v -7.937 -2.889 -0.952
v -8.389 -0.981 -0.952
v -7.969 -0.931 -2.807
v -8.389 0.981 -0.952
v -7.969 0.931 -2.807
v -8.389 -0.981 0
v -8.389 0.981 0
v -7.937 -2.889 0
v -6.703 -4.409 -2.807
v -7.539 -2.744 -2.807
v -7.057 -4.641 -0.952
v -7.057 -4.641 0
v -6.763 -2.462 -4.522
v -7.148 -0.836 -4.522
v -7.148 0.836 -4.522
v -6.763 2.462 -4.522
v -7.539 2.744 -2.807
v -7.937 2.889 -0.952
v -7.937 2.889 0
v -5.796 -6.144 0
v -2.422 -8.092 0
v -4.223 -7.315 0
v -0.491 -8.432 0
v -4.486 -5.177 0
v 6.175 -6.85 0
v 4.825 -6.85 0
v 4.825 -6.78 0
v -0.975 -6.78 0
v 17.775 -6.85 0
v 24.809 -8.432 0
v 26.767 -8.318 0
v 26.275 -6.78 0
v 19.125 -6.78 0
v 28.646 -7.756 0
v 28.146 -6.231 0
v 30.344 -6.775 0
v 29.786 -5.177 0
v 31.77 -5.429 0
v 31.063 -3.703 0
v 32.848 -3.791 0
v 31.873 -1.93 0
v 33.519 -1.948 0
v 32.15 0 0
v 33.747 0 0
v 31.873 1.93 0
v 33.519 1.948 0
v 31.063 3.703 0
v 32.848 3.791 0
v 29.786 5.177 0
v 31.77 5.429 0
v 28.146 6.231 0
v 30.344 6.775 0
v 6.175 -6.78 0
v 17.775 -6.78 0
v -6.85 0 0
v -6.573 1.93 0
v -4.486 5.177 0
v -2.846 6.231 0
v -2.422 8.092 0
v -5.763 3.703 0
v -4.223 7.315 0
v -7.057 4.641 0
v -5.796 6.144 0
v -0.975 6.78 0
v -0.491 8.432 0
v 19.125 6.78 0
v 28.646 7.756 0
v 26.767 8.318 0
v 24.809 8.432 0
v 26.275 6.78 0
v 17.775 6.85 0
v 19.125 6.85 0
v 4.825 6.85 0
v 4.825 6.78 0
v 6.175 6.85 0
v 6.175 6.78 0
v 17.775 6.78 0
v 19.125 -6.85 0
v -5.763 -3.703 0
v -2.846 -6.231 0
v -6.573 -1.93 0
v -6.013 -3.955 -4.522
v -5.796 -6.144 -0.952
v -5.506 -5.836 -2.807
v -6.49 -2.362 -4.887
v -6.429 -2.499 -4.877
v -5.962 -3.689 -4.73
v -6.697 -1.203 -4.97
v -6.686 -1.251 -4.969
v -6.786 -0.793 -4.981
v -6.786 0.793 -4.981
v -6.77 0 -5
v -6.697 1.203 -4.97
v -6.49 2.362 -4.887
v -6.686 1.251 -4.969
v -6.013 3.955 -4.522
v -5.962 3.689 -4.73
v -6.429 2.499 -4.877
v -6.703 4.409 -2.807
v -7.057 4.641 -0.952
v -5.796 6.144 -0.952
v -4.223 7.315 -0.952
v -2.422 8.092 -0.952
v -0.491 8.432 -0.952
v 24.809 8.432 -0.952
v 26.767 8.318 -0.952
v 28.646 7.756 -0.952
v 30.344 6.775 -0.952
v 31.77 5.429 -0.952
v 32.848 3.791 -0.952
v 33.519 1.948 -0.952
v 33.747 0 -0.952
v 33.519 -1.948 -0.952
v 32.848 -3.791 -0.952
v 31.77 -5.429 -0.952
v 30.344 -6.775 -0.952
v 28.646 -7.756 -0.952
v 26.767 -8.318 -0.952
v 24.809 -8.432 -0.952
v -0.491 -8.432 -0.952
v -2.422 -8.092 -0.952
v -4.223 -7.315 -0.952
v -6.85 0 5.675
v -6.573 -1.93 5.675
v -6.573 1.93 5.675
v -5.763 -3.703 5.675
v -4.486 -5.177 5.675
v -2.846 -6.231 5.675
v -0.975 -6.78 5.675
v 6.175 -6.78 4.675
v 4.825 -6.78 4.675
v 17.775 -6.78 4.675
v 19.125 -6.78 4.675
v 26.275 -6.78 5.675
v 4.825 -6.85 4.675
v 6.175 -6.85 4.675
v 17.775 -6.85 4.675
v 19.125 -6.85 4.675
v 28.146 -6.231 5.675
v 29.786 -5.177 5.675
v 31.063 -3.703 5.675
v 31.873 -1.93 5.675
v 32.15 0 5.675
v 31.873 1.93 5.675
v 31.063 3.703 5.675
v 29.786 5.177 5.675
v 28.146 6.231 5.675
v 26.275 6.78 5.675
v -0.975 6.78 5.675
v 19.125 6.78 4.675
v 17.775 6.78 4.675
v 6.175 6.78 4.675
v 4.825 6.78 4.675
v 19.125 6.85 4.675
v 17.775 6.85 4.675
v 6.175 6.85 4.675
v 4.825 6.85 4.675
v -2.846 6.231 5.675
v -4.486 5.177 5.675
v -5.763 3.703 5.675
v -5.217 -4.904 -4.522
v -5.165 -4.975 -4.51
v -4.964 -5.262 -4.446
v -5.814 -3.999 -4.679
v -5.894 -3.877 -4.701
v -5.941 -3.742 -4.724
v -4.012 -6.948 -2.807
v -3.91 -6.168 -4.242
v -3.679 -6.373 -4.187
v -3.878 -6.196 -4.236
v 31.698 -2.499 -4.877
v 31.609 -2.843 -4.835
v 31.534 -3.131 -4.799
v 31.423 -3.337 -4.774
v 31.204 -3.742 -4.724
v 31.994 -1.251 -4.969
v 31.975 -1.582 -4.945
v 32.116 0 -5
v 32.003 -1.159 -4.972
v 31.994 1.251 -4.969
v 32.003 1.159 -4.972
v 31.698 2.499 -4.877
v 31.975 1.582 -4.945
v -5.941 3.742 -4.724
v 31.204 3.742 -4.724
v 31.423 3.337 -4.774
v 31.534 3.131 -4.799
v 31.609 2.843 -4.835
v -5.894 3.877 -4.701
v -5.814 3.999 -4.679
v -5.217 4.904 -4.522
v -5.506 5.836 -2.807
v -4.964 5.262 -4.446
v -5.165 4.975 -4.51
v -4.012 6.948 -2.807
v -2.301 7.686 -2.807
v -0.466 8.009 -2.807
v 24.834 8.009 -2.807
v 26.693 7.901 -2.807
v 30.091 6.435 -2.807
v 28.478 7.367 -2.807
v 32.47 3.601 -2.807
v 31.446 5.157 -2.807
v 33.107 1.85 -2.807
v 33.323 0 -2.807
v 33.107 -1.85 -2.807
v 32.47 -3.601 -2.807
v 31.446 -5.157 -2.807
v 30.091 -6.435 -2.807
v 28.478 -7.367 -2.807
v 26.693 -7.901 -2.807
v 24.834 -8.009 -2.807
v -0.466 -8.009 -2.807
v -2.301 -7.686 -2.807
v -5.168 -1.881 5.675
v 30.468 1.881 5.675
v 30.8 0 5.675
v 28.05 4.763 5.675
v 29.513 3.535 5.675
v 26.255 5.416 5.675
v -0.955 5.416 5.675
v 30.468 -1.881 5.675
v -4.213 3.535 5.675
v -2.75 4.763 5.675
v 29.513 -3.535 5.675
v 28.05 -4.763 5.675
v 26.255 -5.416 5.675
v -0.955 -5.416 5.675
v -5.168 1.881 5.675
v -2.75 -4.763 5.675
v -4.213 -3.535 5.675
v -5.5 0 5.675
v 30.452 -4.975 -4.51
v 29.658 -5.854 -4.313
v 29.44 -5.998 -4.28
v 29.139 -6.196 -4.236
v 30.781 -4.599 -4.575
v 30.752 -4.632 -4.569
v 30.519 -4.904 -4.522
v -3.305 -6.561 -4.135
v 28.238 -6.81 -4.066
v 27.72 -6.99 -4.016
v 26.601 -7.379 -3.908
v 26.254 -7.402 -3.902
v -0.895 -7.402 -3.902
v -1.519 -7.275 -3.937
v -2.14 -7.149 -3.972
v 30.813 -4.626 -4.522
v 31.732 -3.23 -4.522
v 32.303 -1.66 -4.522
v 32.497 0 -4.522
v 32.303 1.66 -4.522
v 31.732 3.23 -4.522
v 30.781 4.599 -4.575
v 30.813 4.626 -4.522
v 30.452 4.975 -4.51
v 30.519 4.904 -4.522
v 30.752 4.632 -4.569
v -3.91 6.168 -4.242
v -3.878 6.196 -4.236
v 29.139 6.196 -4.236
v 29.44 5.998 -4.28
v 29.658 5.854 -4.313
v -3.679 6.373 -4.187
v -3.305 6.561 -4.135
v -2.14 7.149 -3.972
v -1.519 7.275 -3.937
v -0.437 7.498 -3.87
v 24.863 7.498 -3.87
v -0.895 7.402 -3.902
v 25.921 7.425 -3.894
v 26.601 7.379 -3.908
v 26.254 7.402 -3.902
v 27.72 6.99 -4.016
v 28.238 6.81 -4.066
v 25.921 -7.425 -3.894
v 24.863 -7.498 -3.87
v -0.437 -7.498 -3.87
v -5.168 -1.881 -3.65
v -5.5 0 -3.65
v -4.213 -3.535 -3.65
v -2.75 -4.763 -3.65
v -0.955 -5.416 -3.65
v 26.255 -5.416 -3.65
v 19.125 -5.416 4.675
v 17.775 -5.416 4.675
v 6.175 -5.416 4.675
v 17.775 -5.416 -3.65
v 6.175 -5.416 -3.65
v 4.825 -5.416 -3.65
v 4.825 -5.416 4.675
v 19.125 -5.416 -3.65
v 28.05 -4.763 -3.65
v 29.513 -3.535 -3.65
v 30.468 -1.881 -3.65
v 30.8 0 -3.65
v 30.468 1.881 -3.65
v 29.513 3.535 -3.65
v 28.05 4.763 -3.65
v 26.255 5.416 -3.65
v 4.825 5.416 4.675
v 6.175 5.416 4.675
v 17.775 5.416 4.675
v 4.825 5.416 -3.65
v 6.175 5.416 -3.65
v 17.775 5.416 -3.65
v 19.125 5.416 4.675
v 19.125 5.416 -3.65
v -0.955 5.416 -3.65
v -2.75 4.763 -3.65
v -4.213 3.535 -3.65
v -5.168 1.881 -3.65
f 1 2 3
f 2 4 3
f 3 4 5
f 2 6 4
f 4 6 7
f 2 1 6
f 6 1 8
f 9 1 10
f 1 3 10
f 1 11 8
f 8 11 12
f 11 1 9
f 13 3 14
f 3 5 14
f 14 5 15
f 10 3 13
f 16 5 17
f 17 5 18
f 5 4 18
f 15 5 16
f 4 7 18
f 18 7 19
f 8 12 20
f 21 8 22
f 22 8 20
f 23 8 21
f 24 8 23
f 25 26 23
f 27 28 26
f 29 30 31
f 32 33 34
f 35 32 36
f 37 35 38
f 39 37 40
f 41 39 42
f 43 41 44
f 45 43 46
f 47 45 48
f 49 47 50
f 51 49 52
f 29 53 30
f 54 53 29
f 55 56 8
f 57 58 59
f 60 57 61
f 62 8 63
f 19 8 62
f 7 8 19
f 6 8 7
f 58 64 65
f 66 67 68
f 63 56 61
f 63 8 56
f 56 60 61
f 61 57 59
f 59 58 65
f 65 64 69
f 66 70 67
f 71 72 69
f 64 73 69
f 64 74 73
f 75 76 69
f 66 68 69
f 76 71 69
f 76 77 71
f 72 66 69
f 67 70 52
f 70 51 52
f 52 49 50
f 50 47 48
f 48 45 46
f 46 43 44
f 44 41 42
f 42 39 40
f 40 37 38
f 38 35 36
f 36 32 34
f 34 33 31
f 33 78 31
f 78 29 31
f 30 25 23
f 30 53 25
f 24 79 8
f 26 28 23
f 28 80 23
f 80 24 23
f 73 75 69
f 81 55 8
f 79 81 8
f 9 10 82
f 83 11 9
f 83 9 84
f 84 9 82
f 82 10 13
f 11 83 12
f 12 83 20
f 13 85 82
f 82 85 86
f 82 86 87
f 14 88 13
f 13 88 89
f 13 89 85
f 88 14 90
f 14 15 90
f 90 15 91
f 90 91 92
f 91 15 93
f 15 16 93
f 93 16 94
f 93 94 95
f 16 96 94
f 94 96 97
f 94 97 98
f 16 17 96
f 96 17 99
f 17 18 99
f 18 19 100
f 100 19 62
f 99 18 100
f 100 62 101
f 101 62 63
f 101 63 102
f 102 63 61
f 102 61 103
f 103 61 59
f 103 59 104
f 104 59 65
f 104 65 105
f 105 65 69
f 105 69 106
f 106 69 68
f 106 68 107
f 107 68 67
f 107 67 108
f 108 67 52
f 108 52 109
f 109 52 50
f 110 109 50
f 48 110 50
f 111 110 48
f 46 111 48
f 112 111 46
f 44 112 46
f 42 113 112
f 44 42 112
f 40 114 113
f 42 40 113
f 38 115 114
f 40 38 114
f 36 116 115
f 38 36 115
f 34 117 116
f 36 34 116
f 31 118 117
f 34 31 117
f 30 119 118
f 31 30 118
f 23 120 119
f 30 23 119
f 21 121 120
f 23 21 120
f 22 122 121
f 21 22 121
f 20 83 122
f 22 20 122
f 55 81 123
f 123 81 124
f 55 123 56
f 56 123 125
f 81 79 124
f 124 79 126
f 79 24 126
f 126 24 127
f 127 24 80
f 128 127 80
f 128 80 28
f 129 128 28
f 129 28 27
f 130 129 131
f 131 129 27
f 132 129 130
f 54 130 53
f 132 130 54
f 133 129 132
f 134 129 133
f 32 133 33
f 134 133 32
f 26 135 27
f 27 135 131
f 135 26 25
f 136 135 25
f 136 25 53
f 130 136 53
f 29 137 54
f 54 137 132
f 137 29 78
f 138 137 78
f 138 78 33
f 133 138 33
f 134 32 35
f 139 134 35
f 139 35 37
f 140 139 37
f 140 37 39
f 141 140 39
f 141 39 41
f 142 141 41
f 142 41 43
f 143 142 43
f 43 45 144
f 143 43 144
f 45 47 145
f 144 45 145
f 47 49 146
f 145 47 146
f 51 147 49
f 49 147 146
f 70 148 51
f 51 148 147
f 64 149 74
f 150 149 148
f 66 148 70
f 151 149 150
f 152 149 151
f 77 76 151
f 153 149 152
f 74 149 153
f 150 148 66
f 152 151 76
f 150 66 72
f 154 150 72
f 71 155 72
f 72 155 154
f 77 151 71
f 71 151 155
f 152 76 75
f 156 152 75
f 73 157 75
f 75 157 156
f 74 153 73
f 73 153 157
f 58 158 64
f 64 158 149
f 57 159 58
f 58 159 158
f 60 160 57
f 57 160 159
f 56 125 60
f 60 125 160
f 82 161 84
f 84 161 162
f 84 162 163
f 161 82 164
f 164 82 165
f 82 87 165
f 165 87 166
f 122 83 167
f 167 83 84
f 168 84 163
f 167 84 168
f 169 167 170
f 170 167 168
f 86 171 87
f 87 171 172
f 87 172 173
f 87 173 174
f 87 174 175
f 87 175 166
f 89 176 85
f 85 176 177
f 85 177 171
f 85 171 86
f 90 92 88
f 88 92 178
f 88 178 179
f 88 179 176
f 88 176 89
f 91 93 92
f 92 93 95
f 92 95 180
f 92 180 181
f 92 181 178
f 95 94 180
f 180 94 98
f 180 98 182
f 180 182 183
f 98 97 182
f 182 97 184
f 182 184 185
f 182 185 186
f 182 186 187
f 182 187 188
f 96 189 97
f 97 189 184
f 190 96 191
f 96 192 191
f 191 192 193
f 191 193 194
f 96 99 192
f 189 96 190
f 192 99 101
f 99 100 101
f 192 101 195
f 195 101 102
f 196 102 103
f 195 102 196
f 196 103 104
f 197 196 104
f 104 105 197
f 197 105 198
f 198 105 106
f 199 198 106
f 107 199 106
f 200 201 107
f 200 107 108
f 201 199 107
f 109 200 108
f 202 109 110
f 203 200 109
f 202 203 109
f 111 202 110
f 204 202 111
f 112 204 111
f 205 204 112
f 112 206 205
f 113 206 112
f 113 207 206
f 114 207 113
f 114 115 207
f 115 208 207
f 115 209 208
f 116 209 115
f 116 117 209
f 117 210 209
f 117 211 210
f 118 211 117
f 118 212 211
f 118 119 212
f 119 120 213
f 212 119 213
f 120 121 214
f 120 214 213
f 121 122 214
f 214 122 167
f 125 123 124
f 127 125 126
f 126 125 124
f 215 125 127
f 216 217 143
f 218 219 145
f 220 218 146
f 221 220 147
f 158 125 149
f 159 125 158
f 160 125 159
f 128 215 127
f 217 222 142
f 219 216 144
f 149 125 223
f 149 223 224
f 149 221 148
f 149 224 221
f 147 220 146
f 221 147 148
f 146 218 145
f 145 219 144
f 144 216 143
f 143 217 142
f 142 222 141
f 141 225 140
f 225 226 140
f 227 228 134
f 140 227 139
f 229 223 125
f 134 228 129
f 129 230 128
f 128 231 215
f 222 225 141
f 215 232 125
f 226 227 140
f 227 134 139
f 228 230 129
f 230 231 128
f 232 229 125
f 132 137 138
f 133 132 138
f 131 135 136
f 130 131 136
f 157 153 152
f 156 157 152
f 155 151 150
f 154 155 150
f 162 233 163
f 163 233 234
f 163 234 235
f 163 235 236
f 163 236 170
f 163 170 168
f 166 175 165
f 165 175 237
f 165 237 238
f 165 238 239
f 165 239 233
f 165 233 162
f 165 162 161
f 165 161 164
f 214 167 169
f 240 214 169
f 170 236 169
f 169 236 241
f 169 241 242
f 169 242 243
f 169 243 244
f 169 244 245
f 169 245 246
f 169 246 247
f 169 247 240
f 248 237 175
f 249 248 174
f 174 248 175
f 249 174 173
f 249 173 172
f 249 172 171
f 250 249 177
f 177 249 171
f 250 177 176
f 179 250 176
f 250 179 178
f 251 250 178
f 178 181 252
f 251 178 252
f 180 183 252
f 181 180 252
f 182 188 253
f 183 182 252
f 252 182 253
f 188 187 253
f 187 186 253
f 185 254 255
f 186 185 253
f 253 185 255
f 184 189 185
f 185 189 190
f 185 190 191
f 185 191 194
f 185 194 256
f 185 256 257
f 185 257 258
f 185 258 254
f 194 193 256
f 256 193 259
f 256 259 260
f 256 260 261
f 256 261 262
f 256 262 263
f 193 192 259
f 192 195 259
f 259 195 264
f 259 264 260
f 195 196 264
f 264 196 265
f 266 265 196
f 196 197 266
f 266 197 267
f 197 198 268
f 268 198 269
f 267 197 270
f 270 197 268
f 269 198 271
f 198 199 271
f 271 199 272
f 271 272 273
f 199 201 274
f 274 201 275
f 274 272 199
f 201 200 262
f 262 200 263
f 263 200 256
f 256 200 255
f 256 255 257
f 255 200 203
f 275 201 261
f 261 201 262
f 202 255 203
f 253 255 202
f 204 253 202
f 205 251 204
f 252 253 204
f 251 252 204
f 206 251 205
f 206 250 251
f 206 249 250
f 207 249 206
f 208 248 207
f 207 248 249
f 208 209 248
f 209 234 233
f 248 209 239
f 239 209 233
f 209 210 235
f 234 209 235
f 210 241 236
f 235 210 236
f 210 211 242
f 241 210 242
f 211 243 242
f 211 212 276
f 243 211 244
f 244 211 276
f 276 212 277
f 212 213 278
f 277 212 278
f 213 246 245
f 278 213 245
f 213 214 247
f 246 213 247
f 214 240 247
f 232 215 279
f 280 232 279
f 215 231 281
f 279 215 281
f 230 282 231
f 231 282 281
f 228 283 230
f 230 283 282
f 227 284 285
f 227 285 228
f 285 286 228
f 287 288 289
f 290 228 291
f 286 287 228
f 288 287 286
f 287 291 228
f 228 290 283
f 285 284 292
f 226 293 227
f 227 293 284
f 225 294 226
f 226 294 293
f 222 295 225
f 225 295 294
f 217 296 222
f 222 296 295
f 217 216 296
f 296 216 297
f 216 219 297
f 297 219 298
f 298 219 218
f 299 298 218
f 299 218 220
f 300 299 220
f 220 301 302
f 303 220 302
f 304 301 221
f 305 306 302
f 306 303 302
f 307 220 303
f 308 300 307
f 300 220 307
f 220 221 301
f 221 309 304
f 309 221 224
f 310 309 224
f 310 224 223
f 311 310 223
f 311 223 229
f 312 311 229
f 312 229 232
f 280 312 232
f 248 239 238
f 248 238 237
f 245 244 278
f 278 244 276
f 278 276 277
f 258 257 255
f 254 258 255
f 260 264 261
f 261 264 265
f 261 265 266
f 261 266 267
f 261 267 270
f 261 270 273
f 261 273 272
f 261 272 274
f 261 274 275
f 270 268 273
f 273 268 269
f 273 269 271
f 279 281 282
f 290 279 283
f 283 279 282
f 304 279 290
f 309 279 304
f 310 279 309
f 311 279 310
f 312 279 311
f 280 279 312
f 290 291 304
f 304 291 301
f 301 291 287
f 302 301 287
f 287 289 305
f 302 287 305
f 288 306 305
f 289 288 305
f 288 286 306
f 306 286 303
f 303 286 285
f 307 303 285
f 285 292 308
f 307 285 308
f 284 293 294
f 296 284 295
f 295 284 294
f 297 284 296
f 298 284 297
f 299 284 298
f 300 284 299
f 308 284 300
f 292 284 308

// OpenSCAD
/*
 *  OpenSCAD Seat Spacer 
 *  Copyright (C) 2013 Mogue Carpenter
 *
 *  License: LGPL 2.1 or later
 *
 *  A simple spacer for the base of
 *  a toilet seat onto a bow.
 *
*/


lenght =43;
width = 17;
height = 10;

cap_or = width/2;

plug_lenght = 39;
plug_width = 13.7;
plug_height = 5;
wall_thinkness = 1.35;

plug_or = plug_width/2;
plug_ir = plug_or-wall_thinkness;

difference(){
	body();

	translate([0,0,wall_thinkness])
	linear_extrude(height = height, center = true, convexity = 0)
		hull() {
			translate([plug_lenght - plug_width,0,0]) circle(plug_ir);
			circle(plug_ir);
		}
}

translate([plug_ir,0,wall_thinkness-1])
	cube(size=[wall_thinkness,plug_width,height-wall_thinkness],center=true);

translate([plug_lenght-(plug_or*3) ,0, wall_thinkness -1])
	cube(size=[wall_thinkness,plug_width,height-wall_thinkness],center=true);

module body(){
	difference(){
		intersection(){
			rotate([0,90,0])
				translate([(-cap_or*3)+height/2,0,-plug_lenght])
					cylinder(r=cap_or*3,h=plug_lenght*2, $fn=128);

			hull(){
				sphere(r=cap_or);
				translate([plug_lenght - plug_width,0,0]) sphere(r=cap_or);
			}
		}

		translate([-width/2,-width/2,0])
			cube(size=[lenght,width,height]);
	}

	// base
	translate([0,0, wall_thinkness])
		linear_extrude(height = height - wall_thinkness, center = true, convexity = 0){
					hull() {
	  				translate([plug_lenght - plug_width,0,0]) circle(plug_or);
					circle(plug_or);
	 			}
		}
}


module 2d_base(){
	difference(){
		hull() {
  			translate([plug_lenght - plug_width,0,0]) circle(plug_or);
			circle(plug_or);
 		}

		hull() {
			translate([plug_lenght - plug_width,0,0]) circle(plug_ir);
			circle(plug_ir);
		}
	}
}
